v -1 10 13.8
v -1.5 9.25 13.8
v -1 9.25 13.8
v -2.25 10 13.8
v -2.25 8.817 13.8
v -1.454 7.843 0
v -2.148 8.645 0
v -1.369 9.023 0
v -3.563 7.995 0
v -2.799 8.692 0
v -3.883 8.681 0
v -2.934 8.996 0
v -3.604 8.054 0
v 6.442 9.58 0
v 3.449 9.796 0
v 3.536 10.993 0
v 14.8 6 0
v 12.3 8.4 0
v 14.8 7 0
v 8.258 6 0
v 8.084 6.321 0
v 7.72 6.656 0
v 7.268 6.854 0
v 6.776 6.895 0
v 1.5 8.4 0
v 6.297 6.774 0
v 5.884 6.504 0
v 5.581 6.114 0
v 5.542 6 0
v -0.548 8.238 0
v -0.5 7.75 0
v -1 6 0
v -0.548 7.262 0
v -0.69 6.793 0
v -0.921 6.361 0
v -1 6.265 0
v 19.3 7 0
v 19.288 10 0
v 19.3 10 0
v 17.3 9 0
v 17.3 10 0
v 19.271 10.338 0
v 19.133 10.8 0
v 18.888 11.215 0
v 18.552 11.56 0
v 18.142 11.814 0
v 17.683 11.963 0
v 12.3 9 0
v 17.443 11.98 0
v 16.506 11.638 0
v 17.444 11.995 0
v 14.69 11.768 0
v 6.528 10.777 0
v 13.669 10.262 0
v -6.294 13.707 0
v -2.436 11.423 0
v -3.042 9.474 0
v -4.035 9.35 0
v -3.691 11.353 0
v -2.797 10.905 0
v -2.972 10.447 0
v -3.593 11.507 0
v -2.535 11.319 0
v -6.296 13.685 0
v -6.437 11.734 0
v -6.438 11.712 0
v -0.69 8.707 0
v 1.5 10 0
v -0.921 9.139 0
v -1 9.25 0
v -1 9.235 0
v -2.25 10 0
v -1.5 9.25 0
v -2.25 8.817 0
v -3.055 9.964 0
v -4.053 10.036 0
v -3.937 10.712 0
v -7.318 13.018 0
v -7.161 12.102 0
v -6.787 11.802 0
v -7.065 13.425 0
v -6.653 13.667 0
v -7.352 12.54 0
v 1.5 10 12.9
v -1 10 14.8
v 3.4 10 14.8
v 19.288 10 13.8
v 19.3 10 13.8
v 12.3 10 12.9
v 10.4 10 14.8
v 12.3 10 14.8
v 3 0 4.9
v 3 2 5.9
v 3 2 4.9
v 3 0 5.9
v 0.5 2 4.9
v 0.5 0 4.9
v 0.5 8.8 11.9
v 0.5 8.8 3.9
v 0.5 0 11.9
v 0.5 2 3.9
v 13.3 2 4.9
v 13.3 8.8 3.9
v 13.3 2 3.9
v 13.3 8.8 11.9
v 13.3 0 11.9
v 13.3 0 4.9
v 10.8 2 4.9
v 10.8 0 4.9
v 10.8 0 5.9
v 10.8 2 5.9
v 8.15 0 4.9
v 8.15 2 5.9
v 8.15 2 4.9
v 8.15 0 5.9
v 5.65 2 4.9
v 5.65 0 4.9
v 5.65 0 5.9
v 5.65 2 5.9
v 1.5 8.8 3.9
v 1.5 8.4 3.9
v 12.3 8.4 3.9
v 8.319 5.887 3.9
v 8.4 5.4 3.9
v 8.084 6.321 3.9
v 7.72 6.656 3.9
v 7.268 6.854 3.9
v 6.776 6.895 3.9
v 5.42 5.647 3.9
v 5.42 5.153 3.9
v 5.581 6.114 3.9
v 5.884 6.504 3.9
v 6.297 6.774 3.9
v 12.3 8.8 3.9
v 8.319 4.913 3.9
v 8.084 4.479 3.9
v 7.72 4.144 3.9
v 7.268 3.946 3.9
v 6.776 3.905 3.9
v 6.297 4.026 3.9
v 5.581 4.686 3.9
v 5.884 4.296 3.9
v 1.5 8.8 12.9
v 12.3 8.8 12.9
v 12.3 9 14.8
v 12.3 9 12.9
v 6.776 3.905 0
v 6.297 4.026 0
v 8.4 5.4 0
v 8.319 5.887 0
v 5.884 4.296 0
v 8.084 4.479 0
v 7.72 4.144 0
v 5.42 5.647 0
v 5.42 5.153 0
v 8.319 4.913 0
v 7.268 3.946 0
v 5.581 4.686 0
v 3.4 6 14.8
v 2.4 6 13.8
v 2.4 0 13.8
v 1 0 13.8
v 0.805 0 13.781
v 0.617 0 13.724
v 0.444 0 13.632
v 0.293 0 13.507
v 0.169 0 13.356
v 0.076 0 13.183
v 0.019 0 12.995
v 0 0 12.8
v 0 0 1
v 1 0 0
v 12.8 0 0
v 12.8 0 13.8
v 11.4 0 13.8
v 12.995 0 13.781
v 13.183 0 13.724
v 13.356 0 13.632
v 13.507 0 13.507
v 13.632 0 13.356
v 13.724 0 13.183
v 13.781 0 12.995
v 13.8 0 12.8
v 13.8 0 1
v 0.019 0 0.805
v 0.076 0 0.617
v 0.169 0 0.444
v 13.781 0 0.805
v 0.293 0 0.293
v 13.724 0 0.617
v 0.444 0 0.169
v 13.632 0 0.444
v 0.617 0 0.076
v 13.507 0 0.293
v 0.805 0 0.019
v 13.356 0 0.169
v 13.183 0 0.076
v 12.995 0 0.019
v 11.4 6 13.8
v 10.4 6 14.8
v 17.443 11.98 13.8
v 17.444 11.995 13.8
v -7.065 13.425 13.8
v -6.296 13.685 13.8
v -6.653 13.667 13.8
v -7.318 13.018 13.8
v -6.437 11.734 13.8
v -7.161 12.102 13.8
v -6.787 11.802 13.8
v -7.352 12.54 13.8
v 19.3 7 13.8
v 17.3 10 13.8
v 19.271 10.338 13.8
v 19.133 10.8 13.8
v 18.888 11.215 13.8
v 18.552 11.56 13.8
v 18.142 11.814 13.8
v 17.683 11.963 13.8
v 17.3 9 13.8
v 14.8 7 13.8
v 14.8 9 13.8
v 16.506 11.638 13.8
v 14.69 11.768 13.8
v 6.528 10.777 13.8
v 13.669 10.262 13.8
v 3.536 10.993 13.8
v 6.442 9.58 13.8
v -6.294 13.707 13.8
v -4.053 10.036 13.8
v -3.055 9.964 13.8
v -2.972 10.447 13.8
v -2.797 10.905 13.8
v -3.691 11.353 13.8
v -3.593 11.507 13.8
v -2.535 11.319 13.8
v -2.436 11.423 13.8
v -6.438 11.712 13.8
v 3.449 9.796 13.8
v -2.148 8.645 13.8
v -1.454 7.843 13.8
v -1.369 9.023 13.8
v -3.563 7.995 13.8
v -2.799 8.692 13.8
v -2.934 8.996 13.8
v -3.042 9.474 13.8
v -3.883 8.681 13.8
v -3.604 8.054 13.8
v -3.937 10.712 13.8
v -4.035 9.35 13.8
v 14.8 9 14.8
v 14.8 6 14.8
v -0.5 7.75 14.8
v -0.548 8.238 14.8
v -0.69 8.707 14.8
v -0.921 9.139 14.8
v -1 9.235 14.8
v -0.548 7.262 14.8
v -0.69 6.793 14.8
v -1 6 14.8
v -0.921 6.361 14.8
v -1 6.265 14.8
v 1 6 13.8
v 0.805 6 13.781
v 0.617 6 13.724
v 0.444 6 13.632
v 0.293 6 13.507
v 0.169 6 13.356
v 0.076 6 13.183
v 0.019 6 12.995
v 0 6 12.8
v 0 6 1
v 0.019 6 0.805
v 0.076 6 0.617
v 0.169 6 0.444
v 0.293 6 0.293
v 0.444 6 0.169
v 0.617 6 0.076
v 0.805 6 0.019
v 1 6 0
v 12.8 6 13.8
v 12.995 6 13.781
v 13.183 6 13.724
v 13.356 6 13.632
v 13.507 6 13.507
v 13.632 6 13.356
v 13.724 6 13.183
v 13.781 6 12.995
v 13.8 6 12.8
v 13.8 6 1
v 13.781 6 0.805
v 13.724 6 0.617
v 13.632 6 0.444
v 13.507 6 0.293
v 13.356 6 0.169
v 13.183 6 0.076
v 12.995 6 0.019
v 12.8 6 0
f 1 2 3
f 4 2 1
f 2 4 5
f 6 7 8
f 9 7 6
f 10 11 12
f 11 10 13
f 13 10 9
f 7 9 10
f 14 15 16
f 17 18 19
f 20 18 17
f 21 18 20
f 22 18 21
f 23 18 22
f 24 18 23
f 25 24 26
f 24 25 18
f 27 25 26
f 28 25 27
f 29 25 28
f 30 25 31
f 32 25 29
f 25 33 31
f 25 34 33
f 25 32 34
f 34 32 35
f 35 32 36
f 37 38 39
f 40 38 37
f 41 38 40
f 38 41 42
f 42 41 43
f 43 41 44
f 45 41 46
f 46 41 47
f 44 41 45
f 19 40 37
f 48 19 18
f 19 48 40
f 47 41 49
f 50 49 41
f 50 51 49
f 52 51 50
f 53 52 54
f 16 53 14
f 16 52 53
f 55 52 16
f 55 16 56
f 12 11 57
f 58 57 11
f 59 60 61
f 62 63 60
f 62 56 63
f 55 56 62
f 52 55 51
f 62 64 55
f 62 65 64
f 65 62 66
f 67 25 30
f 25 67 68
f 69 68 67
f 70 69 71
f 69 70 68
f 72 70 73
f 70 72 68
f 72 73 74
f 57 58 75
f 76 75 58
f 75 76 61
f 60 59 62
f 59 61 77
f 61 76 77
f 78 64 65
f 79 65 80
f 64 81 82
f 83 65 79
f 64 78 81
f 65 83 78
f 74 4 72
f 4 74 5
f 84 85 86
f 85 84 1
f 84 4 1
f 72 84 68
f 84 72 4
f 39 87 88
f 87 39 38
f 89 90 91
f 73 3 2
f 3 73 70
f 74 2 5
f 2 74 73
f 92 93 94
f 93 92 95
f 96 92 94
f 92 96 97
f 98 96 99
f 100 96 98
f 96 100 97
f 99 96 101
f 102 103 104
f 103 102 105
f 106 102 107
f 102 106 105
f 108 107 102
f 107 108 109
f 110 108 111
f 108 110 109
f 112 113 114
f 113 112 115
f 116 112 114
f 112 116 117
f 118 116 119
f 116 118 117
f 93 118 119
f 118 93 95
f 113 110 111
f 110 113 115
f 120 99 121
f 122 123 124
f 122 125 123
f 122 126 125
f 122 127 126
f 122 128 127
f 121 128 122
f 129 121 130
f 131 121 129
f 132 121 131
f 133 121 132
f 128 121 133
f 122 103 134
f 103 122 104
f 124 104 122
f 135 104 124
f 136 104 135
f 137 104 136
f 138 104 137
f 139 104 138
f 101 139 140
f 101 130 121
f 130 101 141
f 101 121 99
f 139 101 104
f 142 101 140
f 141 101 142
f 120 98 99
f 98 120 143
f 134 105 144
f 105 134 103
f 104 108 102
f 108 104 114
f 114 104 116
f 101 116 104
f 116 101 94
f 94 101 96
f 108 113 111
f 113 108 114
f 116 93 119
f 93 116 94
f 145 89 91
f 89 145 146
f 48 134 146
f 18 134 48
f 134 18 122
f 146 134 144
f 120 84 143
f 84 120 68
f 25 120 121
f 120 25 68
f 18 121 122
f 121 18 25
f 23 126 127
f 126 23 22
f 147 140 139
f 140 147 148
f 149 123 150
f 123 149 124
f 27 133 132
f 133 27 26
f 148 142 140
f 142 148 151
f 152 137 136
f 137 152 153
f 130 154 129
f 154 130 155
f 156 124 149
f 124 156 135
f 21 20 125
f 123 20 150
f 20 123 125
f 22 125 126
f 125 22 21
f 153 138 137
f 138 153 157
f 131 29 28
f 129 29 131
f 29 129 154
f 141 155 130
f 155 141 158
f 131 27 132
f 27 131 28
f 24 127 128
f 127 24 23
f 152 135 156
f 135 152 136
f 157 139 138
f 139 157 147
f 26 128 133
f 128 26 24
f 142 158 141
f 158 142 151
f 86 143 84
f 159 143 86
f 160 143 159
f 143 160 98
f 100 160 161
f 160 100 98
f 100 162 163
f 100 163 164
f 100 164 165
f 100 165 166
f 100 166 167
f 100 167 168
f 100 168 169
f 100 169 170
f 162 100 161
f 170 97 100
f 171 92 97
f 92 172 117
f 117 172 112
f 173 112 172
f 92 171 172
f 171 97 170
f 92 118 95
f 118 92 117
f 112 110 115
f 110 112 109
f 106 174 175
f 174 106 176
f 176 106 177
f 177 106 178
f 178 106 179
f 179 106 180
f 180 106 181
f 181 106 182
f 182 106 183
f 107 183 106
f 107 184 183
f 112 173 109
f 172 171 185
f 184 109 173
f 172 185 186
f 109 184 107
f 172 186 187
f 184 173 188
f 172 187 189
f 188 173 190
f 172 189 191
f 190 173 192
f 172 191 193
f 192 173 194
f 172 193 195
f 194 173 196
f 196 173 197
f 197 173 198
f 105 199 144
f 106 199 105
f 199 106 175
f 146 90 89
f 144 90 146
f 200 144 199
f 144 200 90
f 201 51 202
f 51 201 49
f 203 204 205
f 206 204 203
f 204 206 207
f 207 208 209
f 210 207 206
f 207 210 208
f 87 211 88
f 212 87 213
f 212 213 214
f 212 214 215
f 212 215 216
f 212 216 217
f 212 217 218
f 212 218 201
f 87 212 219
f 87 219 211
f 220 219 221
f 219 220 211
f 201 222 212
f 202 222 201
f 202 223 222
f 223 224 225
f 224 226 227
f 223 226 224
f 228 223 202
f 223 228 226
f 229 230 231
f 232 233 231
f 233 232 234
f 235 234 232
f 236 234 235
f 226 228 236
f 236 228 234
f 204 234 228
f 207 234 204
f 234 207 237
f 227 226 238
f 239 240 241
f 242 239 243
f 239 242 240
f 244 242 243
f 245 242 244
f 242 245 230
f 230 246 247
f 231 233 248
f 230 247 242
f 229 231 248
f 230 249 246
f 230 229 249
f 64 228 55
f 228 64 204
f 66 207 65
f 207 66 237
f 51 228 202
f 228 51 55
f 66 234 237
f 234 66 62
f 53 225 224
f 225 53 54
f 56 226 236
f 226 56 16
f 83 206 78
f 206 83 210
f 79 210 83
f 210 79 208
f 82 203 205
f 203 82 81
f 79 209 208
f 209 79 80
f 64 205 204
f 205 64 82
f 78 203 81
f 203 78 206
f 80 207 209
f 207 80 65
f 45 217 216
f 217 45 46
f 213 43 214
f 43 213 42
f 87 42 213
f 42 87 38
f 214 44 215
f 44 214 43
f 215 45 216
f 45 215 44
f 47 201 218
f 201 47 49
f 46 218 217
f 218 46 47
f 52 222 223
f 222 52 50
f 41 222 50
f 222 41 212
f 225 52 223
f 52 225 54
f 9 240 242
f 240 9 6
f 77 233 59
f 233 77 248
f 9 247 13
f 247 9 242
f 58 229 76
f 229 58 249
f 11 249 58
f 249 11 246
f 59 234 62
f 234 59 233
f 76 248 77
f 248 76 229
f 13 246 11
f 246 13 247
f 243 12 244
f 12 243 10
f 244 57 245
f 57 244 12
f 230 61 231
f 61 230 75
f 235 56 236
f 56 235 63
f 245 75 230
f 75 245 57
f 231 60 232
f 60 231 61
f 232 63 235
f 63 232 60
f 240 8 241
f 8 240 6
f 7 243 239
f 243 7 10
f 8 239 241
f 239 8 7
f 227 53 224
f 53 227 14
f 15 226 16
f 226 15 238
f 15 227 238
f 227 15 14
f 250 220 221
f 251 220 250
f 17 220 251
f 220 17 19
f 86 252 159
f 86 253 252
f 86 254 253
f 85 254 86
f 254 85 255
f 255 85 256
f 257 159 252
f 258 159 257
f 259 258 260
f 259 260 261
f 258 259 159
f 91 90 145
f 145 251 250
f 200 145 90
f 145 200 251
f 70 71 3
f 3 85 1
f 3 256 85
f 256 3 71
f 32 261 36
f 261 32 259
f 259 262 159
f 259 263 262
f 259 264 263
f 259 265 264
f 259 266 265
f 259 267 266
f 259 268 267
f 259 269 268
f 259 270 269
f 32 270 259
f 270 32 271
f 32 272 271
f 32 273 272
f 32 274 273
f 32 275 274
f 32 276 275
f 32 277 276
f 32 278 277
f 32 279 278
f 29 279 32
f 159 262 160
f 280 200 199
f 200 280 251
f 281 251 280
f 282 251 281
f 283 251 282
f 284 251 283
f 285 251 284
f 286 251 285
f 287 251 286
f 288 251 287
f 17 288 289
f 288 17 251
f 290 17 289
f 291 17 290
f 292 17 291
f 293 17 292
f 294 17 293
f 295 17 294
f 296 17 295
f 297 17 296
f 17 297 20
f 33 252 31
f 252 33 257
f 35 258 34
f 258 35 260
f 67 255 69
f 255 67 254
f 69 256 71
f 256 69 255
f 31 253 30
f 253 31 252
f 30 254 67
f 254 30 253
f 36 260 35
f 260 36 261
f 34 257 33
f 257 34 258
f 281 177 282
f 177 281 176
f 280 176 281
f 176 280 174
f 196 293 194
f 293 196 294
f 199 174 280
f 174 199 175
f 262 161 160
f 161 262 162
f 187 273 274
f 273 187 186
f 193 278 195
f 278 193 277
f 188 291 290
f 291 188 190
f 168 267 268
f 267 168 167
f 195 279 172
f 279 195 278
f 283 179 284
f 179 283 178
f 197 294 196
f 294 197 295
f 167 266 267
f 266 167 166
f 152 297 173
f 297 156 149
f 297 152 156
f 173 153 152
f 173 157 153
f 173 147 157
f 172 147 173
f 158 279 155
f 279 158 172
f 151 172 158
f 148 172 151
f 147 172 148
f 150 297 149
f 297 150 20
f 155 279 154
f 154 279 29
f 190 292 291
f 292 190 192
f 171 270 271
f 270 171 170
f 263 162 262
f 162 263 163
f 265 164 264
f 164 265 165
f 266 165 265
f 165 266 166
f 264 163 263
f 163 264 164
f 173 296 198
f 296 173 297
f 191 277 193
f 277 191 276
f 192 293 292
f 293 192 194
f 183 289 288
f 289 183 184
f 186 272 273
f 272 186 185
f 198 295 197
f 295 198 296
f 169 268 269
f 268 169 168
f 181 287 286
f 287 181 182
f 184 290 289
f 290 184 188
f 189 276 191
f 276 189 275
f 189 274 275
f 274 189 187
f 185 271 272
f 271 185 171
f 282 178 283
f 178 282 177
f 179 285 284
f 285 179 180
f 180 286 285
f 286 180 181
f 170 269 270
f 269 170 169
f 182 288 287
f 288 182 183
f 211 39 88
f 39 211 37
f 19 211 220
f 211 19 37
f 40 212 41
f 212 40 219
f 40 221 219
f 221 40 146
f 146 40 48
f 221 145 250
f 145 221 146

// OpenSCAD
use <../hardware/microswitch-cherry-mx.scad>

switch_carrier(5, 5);
